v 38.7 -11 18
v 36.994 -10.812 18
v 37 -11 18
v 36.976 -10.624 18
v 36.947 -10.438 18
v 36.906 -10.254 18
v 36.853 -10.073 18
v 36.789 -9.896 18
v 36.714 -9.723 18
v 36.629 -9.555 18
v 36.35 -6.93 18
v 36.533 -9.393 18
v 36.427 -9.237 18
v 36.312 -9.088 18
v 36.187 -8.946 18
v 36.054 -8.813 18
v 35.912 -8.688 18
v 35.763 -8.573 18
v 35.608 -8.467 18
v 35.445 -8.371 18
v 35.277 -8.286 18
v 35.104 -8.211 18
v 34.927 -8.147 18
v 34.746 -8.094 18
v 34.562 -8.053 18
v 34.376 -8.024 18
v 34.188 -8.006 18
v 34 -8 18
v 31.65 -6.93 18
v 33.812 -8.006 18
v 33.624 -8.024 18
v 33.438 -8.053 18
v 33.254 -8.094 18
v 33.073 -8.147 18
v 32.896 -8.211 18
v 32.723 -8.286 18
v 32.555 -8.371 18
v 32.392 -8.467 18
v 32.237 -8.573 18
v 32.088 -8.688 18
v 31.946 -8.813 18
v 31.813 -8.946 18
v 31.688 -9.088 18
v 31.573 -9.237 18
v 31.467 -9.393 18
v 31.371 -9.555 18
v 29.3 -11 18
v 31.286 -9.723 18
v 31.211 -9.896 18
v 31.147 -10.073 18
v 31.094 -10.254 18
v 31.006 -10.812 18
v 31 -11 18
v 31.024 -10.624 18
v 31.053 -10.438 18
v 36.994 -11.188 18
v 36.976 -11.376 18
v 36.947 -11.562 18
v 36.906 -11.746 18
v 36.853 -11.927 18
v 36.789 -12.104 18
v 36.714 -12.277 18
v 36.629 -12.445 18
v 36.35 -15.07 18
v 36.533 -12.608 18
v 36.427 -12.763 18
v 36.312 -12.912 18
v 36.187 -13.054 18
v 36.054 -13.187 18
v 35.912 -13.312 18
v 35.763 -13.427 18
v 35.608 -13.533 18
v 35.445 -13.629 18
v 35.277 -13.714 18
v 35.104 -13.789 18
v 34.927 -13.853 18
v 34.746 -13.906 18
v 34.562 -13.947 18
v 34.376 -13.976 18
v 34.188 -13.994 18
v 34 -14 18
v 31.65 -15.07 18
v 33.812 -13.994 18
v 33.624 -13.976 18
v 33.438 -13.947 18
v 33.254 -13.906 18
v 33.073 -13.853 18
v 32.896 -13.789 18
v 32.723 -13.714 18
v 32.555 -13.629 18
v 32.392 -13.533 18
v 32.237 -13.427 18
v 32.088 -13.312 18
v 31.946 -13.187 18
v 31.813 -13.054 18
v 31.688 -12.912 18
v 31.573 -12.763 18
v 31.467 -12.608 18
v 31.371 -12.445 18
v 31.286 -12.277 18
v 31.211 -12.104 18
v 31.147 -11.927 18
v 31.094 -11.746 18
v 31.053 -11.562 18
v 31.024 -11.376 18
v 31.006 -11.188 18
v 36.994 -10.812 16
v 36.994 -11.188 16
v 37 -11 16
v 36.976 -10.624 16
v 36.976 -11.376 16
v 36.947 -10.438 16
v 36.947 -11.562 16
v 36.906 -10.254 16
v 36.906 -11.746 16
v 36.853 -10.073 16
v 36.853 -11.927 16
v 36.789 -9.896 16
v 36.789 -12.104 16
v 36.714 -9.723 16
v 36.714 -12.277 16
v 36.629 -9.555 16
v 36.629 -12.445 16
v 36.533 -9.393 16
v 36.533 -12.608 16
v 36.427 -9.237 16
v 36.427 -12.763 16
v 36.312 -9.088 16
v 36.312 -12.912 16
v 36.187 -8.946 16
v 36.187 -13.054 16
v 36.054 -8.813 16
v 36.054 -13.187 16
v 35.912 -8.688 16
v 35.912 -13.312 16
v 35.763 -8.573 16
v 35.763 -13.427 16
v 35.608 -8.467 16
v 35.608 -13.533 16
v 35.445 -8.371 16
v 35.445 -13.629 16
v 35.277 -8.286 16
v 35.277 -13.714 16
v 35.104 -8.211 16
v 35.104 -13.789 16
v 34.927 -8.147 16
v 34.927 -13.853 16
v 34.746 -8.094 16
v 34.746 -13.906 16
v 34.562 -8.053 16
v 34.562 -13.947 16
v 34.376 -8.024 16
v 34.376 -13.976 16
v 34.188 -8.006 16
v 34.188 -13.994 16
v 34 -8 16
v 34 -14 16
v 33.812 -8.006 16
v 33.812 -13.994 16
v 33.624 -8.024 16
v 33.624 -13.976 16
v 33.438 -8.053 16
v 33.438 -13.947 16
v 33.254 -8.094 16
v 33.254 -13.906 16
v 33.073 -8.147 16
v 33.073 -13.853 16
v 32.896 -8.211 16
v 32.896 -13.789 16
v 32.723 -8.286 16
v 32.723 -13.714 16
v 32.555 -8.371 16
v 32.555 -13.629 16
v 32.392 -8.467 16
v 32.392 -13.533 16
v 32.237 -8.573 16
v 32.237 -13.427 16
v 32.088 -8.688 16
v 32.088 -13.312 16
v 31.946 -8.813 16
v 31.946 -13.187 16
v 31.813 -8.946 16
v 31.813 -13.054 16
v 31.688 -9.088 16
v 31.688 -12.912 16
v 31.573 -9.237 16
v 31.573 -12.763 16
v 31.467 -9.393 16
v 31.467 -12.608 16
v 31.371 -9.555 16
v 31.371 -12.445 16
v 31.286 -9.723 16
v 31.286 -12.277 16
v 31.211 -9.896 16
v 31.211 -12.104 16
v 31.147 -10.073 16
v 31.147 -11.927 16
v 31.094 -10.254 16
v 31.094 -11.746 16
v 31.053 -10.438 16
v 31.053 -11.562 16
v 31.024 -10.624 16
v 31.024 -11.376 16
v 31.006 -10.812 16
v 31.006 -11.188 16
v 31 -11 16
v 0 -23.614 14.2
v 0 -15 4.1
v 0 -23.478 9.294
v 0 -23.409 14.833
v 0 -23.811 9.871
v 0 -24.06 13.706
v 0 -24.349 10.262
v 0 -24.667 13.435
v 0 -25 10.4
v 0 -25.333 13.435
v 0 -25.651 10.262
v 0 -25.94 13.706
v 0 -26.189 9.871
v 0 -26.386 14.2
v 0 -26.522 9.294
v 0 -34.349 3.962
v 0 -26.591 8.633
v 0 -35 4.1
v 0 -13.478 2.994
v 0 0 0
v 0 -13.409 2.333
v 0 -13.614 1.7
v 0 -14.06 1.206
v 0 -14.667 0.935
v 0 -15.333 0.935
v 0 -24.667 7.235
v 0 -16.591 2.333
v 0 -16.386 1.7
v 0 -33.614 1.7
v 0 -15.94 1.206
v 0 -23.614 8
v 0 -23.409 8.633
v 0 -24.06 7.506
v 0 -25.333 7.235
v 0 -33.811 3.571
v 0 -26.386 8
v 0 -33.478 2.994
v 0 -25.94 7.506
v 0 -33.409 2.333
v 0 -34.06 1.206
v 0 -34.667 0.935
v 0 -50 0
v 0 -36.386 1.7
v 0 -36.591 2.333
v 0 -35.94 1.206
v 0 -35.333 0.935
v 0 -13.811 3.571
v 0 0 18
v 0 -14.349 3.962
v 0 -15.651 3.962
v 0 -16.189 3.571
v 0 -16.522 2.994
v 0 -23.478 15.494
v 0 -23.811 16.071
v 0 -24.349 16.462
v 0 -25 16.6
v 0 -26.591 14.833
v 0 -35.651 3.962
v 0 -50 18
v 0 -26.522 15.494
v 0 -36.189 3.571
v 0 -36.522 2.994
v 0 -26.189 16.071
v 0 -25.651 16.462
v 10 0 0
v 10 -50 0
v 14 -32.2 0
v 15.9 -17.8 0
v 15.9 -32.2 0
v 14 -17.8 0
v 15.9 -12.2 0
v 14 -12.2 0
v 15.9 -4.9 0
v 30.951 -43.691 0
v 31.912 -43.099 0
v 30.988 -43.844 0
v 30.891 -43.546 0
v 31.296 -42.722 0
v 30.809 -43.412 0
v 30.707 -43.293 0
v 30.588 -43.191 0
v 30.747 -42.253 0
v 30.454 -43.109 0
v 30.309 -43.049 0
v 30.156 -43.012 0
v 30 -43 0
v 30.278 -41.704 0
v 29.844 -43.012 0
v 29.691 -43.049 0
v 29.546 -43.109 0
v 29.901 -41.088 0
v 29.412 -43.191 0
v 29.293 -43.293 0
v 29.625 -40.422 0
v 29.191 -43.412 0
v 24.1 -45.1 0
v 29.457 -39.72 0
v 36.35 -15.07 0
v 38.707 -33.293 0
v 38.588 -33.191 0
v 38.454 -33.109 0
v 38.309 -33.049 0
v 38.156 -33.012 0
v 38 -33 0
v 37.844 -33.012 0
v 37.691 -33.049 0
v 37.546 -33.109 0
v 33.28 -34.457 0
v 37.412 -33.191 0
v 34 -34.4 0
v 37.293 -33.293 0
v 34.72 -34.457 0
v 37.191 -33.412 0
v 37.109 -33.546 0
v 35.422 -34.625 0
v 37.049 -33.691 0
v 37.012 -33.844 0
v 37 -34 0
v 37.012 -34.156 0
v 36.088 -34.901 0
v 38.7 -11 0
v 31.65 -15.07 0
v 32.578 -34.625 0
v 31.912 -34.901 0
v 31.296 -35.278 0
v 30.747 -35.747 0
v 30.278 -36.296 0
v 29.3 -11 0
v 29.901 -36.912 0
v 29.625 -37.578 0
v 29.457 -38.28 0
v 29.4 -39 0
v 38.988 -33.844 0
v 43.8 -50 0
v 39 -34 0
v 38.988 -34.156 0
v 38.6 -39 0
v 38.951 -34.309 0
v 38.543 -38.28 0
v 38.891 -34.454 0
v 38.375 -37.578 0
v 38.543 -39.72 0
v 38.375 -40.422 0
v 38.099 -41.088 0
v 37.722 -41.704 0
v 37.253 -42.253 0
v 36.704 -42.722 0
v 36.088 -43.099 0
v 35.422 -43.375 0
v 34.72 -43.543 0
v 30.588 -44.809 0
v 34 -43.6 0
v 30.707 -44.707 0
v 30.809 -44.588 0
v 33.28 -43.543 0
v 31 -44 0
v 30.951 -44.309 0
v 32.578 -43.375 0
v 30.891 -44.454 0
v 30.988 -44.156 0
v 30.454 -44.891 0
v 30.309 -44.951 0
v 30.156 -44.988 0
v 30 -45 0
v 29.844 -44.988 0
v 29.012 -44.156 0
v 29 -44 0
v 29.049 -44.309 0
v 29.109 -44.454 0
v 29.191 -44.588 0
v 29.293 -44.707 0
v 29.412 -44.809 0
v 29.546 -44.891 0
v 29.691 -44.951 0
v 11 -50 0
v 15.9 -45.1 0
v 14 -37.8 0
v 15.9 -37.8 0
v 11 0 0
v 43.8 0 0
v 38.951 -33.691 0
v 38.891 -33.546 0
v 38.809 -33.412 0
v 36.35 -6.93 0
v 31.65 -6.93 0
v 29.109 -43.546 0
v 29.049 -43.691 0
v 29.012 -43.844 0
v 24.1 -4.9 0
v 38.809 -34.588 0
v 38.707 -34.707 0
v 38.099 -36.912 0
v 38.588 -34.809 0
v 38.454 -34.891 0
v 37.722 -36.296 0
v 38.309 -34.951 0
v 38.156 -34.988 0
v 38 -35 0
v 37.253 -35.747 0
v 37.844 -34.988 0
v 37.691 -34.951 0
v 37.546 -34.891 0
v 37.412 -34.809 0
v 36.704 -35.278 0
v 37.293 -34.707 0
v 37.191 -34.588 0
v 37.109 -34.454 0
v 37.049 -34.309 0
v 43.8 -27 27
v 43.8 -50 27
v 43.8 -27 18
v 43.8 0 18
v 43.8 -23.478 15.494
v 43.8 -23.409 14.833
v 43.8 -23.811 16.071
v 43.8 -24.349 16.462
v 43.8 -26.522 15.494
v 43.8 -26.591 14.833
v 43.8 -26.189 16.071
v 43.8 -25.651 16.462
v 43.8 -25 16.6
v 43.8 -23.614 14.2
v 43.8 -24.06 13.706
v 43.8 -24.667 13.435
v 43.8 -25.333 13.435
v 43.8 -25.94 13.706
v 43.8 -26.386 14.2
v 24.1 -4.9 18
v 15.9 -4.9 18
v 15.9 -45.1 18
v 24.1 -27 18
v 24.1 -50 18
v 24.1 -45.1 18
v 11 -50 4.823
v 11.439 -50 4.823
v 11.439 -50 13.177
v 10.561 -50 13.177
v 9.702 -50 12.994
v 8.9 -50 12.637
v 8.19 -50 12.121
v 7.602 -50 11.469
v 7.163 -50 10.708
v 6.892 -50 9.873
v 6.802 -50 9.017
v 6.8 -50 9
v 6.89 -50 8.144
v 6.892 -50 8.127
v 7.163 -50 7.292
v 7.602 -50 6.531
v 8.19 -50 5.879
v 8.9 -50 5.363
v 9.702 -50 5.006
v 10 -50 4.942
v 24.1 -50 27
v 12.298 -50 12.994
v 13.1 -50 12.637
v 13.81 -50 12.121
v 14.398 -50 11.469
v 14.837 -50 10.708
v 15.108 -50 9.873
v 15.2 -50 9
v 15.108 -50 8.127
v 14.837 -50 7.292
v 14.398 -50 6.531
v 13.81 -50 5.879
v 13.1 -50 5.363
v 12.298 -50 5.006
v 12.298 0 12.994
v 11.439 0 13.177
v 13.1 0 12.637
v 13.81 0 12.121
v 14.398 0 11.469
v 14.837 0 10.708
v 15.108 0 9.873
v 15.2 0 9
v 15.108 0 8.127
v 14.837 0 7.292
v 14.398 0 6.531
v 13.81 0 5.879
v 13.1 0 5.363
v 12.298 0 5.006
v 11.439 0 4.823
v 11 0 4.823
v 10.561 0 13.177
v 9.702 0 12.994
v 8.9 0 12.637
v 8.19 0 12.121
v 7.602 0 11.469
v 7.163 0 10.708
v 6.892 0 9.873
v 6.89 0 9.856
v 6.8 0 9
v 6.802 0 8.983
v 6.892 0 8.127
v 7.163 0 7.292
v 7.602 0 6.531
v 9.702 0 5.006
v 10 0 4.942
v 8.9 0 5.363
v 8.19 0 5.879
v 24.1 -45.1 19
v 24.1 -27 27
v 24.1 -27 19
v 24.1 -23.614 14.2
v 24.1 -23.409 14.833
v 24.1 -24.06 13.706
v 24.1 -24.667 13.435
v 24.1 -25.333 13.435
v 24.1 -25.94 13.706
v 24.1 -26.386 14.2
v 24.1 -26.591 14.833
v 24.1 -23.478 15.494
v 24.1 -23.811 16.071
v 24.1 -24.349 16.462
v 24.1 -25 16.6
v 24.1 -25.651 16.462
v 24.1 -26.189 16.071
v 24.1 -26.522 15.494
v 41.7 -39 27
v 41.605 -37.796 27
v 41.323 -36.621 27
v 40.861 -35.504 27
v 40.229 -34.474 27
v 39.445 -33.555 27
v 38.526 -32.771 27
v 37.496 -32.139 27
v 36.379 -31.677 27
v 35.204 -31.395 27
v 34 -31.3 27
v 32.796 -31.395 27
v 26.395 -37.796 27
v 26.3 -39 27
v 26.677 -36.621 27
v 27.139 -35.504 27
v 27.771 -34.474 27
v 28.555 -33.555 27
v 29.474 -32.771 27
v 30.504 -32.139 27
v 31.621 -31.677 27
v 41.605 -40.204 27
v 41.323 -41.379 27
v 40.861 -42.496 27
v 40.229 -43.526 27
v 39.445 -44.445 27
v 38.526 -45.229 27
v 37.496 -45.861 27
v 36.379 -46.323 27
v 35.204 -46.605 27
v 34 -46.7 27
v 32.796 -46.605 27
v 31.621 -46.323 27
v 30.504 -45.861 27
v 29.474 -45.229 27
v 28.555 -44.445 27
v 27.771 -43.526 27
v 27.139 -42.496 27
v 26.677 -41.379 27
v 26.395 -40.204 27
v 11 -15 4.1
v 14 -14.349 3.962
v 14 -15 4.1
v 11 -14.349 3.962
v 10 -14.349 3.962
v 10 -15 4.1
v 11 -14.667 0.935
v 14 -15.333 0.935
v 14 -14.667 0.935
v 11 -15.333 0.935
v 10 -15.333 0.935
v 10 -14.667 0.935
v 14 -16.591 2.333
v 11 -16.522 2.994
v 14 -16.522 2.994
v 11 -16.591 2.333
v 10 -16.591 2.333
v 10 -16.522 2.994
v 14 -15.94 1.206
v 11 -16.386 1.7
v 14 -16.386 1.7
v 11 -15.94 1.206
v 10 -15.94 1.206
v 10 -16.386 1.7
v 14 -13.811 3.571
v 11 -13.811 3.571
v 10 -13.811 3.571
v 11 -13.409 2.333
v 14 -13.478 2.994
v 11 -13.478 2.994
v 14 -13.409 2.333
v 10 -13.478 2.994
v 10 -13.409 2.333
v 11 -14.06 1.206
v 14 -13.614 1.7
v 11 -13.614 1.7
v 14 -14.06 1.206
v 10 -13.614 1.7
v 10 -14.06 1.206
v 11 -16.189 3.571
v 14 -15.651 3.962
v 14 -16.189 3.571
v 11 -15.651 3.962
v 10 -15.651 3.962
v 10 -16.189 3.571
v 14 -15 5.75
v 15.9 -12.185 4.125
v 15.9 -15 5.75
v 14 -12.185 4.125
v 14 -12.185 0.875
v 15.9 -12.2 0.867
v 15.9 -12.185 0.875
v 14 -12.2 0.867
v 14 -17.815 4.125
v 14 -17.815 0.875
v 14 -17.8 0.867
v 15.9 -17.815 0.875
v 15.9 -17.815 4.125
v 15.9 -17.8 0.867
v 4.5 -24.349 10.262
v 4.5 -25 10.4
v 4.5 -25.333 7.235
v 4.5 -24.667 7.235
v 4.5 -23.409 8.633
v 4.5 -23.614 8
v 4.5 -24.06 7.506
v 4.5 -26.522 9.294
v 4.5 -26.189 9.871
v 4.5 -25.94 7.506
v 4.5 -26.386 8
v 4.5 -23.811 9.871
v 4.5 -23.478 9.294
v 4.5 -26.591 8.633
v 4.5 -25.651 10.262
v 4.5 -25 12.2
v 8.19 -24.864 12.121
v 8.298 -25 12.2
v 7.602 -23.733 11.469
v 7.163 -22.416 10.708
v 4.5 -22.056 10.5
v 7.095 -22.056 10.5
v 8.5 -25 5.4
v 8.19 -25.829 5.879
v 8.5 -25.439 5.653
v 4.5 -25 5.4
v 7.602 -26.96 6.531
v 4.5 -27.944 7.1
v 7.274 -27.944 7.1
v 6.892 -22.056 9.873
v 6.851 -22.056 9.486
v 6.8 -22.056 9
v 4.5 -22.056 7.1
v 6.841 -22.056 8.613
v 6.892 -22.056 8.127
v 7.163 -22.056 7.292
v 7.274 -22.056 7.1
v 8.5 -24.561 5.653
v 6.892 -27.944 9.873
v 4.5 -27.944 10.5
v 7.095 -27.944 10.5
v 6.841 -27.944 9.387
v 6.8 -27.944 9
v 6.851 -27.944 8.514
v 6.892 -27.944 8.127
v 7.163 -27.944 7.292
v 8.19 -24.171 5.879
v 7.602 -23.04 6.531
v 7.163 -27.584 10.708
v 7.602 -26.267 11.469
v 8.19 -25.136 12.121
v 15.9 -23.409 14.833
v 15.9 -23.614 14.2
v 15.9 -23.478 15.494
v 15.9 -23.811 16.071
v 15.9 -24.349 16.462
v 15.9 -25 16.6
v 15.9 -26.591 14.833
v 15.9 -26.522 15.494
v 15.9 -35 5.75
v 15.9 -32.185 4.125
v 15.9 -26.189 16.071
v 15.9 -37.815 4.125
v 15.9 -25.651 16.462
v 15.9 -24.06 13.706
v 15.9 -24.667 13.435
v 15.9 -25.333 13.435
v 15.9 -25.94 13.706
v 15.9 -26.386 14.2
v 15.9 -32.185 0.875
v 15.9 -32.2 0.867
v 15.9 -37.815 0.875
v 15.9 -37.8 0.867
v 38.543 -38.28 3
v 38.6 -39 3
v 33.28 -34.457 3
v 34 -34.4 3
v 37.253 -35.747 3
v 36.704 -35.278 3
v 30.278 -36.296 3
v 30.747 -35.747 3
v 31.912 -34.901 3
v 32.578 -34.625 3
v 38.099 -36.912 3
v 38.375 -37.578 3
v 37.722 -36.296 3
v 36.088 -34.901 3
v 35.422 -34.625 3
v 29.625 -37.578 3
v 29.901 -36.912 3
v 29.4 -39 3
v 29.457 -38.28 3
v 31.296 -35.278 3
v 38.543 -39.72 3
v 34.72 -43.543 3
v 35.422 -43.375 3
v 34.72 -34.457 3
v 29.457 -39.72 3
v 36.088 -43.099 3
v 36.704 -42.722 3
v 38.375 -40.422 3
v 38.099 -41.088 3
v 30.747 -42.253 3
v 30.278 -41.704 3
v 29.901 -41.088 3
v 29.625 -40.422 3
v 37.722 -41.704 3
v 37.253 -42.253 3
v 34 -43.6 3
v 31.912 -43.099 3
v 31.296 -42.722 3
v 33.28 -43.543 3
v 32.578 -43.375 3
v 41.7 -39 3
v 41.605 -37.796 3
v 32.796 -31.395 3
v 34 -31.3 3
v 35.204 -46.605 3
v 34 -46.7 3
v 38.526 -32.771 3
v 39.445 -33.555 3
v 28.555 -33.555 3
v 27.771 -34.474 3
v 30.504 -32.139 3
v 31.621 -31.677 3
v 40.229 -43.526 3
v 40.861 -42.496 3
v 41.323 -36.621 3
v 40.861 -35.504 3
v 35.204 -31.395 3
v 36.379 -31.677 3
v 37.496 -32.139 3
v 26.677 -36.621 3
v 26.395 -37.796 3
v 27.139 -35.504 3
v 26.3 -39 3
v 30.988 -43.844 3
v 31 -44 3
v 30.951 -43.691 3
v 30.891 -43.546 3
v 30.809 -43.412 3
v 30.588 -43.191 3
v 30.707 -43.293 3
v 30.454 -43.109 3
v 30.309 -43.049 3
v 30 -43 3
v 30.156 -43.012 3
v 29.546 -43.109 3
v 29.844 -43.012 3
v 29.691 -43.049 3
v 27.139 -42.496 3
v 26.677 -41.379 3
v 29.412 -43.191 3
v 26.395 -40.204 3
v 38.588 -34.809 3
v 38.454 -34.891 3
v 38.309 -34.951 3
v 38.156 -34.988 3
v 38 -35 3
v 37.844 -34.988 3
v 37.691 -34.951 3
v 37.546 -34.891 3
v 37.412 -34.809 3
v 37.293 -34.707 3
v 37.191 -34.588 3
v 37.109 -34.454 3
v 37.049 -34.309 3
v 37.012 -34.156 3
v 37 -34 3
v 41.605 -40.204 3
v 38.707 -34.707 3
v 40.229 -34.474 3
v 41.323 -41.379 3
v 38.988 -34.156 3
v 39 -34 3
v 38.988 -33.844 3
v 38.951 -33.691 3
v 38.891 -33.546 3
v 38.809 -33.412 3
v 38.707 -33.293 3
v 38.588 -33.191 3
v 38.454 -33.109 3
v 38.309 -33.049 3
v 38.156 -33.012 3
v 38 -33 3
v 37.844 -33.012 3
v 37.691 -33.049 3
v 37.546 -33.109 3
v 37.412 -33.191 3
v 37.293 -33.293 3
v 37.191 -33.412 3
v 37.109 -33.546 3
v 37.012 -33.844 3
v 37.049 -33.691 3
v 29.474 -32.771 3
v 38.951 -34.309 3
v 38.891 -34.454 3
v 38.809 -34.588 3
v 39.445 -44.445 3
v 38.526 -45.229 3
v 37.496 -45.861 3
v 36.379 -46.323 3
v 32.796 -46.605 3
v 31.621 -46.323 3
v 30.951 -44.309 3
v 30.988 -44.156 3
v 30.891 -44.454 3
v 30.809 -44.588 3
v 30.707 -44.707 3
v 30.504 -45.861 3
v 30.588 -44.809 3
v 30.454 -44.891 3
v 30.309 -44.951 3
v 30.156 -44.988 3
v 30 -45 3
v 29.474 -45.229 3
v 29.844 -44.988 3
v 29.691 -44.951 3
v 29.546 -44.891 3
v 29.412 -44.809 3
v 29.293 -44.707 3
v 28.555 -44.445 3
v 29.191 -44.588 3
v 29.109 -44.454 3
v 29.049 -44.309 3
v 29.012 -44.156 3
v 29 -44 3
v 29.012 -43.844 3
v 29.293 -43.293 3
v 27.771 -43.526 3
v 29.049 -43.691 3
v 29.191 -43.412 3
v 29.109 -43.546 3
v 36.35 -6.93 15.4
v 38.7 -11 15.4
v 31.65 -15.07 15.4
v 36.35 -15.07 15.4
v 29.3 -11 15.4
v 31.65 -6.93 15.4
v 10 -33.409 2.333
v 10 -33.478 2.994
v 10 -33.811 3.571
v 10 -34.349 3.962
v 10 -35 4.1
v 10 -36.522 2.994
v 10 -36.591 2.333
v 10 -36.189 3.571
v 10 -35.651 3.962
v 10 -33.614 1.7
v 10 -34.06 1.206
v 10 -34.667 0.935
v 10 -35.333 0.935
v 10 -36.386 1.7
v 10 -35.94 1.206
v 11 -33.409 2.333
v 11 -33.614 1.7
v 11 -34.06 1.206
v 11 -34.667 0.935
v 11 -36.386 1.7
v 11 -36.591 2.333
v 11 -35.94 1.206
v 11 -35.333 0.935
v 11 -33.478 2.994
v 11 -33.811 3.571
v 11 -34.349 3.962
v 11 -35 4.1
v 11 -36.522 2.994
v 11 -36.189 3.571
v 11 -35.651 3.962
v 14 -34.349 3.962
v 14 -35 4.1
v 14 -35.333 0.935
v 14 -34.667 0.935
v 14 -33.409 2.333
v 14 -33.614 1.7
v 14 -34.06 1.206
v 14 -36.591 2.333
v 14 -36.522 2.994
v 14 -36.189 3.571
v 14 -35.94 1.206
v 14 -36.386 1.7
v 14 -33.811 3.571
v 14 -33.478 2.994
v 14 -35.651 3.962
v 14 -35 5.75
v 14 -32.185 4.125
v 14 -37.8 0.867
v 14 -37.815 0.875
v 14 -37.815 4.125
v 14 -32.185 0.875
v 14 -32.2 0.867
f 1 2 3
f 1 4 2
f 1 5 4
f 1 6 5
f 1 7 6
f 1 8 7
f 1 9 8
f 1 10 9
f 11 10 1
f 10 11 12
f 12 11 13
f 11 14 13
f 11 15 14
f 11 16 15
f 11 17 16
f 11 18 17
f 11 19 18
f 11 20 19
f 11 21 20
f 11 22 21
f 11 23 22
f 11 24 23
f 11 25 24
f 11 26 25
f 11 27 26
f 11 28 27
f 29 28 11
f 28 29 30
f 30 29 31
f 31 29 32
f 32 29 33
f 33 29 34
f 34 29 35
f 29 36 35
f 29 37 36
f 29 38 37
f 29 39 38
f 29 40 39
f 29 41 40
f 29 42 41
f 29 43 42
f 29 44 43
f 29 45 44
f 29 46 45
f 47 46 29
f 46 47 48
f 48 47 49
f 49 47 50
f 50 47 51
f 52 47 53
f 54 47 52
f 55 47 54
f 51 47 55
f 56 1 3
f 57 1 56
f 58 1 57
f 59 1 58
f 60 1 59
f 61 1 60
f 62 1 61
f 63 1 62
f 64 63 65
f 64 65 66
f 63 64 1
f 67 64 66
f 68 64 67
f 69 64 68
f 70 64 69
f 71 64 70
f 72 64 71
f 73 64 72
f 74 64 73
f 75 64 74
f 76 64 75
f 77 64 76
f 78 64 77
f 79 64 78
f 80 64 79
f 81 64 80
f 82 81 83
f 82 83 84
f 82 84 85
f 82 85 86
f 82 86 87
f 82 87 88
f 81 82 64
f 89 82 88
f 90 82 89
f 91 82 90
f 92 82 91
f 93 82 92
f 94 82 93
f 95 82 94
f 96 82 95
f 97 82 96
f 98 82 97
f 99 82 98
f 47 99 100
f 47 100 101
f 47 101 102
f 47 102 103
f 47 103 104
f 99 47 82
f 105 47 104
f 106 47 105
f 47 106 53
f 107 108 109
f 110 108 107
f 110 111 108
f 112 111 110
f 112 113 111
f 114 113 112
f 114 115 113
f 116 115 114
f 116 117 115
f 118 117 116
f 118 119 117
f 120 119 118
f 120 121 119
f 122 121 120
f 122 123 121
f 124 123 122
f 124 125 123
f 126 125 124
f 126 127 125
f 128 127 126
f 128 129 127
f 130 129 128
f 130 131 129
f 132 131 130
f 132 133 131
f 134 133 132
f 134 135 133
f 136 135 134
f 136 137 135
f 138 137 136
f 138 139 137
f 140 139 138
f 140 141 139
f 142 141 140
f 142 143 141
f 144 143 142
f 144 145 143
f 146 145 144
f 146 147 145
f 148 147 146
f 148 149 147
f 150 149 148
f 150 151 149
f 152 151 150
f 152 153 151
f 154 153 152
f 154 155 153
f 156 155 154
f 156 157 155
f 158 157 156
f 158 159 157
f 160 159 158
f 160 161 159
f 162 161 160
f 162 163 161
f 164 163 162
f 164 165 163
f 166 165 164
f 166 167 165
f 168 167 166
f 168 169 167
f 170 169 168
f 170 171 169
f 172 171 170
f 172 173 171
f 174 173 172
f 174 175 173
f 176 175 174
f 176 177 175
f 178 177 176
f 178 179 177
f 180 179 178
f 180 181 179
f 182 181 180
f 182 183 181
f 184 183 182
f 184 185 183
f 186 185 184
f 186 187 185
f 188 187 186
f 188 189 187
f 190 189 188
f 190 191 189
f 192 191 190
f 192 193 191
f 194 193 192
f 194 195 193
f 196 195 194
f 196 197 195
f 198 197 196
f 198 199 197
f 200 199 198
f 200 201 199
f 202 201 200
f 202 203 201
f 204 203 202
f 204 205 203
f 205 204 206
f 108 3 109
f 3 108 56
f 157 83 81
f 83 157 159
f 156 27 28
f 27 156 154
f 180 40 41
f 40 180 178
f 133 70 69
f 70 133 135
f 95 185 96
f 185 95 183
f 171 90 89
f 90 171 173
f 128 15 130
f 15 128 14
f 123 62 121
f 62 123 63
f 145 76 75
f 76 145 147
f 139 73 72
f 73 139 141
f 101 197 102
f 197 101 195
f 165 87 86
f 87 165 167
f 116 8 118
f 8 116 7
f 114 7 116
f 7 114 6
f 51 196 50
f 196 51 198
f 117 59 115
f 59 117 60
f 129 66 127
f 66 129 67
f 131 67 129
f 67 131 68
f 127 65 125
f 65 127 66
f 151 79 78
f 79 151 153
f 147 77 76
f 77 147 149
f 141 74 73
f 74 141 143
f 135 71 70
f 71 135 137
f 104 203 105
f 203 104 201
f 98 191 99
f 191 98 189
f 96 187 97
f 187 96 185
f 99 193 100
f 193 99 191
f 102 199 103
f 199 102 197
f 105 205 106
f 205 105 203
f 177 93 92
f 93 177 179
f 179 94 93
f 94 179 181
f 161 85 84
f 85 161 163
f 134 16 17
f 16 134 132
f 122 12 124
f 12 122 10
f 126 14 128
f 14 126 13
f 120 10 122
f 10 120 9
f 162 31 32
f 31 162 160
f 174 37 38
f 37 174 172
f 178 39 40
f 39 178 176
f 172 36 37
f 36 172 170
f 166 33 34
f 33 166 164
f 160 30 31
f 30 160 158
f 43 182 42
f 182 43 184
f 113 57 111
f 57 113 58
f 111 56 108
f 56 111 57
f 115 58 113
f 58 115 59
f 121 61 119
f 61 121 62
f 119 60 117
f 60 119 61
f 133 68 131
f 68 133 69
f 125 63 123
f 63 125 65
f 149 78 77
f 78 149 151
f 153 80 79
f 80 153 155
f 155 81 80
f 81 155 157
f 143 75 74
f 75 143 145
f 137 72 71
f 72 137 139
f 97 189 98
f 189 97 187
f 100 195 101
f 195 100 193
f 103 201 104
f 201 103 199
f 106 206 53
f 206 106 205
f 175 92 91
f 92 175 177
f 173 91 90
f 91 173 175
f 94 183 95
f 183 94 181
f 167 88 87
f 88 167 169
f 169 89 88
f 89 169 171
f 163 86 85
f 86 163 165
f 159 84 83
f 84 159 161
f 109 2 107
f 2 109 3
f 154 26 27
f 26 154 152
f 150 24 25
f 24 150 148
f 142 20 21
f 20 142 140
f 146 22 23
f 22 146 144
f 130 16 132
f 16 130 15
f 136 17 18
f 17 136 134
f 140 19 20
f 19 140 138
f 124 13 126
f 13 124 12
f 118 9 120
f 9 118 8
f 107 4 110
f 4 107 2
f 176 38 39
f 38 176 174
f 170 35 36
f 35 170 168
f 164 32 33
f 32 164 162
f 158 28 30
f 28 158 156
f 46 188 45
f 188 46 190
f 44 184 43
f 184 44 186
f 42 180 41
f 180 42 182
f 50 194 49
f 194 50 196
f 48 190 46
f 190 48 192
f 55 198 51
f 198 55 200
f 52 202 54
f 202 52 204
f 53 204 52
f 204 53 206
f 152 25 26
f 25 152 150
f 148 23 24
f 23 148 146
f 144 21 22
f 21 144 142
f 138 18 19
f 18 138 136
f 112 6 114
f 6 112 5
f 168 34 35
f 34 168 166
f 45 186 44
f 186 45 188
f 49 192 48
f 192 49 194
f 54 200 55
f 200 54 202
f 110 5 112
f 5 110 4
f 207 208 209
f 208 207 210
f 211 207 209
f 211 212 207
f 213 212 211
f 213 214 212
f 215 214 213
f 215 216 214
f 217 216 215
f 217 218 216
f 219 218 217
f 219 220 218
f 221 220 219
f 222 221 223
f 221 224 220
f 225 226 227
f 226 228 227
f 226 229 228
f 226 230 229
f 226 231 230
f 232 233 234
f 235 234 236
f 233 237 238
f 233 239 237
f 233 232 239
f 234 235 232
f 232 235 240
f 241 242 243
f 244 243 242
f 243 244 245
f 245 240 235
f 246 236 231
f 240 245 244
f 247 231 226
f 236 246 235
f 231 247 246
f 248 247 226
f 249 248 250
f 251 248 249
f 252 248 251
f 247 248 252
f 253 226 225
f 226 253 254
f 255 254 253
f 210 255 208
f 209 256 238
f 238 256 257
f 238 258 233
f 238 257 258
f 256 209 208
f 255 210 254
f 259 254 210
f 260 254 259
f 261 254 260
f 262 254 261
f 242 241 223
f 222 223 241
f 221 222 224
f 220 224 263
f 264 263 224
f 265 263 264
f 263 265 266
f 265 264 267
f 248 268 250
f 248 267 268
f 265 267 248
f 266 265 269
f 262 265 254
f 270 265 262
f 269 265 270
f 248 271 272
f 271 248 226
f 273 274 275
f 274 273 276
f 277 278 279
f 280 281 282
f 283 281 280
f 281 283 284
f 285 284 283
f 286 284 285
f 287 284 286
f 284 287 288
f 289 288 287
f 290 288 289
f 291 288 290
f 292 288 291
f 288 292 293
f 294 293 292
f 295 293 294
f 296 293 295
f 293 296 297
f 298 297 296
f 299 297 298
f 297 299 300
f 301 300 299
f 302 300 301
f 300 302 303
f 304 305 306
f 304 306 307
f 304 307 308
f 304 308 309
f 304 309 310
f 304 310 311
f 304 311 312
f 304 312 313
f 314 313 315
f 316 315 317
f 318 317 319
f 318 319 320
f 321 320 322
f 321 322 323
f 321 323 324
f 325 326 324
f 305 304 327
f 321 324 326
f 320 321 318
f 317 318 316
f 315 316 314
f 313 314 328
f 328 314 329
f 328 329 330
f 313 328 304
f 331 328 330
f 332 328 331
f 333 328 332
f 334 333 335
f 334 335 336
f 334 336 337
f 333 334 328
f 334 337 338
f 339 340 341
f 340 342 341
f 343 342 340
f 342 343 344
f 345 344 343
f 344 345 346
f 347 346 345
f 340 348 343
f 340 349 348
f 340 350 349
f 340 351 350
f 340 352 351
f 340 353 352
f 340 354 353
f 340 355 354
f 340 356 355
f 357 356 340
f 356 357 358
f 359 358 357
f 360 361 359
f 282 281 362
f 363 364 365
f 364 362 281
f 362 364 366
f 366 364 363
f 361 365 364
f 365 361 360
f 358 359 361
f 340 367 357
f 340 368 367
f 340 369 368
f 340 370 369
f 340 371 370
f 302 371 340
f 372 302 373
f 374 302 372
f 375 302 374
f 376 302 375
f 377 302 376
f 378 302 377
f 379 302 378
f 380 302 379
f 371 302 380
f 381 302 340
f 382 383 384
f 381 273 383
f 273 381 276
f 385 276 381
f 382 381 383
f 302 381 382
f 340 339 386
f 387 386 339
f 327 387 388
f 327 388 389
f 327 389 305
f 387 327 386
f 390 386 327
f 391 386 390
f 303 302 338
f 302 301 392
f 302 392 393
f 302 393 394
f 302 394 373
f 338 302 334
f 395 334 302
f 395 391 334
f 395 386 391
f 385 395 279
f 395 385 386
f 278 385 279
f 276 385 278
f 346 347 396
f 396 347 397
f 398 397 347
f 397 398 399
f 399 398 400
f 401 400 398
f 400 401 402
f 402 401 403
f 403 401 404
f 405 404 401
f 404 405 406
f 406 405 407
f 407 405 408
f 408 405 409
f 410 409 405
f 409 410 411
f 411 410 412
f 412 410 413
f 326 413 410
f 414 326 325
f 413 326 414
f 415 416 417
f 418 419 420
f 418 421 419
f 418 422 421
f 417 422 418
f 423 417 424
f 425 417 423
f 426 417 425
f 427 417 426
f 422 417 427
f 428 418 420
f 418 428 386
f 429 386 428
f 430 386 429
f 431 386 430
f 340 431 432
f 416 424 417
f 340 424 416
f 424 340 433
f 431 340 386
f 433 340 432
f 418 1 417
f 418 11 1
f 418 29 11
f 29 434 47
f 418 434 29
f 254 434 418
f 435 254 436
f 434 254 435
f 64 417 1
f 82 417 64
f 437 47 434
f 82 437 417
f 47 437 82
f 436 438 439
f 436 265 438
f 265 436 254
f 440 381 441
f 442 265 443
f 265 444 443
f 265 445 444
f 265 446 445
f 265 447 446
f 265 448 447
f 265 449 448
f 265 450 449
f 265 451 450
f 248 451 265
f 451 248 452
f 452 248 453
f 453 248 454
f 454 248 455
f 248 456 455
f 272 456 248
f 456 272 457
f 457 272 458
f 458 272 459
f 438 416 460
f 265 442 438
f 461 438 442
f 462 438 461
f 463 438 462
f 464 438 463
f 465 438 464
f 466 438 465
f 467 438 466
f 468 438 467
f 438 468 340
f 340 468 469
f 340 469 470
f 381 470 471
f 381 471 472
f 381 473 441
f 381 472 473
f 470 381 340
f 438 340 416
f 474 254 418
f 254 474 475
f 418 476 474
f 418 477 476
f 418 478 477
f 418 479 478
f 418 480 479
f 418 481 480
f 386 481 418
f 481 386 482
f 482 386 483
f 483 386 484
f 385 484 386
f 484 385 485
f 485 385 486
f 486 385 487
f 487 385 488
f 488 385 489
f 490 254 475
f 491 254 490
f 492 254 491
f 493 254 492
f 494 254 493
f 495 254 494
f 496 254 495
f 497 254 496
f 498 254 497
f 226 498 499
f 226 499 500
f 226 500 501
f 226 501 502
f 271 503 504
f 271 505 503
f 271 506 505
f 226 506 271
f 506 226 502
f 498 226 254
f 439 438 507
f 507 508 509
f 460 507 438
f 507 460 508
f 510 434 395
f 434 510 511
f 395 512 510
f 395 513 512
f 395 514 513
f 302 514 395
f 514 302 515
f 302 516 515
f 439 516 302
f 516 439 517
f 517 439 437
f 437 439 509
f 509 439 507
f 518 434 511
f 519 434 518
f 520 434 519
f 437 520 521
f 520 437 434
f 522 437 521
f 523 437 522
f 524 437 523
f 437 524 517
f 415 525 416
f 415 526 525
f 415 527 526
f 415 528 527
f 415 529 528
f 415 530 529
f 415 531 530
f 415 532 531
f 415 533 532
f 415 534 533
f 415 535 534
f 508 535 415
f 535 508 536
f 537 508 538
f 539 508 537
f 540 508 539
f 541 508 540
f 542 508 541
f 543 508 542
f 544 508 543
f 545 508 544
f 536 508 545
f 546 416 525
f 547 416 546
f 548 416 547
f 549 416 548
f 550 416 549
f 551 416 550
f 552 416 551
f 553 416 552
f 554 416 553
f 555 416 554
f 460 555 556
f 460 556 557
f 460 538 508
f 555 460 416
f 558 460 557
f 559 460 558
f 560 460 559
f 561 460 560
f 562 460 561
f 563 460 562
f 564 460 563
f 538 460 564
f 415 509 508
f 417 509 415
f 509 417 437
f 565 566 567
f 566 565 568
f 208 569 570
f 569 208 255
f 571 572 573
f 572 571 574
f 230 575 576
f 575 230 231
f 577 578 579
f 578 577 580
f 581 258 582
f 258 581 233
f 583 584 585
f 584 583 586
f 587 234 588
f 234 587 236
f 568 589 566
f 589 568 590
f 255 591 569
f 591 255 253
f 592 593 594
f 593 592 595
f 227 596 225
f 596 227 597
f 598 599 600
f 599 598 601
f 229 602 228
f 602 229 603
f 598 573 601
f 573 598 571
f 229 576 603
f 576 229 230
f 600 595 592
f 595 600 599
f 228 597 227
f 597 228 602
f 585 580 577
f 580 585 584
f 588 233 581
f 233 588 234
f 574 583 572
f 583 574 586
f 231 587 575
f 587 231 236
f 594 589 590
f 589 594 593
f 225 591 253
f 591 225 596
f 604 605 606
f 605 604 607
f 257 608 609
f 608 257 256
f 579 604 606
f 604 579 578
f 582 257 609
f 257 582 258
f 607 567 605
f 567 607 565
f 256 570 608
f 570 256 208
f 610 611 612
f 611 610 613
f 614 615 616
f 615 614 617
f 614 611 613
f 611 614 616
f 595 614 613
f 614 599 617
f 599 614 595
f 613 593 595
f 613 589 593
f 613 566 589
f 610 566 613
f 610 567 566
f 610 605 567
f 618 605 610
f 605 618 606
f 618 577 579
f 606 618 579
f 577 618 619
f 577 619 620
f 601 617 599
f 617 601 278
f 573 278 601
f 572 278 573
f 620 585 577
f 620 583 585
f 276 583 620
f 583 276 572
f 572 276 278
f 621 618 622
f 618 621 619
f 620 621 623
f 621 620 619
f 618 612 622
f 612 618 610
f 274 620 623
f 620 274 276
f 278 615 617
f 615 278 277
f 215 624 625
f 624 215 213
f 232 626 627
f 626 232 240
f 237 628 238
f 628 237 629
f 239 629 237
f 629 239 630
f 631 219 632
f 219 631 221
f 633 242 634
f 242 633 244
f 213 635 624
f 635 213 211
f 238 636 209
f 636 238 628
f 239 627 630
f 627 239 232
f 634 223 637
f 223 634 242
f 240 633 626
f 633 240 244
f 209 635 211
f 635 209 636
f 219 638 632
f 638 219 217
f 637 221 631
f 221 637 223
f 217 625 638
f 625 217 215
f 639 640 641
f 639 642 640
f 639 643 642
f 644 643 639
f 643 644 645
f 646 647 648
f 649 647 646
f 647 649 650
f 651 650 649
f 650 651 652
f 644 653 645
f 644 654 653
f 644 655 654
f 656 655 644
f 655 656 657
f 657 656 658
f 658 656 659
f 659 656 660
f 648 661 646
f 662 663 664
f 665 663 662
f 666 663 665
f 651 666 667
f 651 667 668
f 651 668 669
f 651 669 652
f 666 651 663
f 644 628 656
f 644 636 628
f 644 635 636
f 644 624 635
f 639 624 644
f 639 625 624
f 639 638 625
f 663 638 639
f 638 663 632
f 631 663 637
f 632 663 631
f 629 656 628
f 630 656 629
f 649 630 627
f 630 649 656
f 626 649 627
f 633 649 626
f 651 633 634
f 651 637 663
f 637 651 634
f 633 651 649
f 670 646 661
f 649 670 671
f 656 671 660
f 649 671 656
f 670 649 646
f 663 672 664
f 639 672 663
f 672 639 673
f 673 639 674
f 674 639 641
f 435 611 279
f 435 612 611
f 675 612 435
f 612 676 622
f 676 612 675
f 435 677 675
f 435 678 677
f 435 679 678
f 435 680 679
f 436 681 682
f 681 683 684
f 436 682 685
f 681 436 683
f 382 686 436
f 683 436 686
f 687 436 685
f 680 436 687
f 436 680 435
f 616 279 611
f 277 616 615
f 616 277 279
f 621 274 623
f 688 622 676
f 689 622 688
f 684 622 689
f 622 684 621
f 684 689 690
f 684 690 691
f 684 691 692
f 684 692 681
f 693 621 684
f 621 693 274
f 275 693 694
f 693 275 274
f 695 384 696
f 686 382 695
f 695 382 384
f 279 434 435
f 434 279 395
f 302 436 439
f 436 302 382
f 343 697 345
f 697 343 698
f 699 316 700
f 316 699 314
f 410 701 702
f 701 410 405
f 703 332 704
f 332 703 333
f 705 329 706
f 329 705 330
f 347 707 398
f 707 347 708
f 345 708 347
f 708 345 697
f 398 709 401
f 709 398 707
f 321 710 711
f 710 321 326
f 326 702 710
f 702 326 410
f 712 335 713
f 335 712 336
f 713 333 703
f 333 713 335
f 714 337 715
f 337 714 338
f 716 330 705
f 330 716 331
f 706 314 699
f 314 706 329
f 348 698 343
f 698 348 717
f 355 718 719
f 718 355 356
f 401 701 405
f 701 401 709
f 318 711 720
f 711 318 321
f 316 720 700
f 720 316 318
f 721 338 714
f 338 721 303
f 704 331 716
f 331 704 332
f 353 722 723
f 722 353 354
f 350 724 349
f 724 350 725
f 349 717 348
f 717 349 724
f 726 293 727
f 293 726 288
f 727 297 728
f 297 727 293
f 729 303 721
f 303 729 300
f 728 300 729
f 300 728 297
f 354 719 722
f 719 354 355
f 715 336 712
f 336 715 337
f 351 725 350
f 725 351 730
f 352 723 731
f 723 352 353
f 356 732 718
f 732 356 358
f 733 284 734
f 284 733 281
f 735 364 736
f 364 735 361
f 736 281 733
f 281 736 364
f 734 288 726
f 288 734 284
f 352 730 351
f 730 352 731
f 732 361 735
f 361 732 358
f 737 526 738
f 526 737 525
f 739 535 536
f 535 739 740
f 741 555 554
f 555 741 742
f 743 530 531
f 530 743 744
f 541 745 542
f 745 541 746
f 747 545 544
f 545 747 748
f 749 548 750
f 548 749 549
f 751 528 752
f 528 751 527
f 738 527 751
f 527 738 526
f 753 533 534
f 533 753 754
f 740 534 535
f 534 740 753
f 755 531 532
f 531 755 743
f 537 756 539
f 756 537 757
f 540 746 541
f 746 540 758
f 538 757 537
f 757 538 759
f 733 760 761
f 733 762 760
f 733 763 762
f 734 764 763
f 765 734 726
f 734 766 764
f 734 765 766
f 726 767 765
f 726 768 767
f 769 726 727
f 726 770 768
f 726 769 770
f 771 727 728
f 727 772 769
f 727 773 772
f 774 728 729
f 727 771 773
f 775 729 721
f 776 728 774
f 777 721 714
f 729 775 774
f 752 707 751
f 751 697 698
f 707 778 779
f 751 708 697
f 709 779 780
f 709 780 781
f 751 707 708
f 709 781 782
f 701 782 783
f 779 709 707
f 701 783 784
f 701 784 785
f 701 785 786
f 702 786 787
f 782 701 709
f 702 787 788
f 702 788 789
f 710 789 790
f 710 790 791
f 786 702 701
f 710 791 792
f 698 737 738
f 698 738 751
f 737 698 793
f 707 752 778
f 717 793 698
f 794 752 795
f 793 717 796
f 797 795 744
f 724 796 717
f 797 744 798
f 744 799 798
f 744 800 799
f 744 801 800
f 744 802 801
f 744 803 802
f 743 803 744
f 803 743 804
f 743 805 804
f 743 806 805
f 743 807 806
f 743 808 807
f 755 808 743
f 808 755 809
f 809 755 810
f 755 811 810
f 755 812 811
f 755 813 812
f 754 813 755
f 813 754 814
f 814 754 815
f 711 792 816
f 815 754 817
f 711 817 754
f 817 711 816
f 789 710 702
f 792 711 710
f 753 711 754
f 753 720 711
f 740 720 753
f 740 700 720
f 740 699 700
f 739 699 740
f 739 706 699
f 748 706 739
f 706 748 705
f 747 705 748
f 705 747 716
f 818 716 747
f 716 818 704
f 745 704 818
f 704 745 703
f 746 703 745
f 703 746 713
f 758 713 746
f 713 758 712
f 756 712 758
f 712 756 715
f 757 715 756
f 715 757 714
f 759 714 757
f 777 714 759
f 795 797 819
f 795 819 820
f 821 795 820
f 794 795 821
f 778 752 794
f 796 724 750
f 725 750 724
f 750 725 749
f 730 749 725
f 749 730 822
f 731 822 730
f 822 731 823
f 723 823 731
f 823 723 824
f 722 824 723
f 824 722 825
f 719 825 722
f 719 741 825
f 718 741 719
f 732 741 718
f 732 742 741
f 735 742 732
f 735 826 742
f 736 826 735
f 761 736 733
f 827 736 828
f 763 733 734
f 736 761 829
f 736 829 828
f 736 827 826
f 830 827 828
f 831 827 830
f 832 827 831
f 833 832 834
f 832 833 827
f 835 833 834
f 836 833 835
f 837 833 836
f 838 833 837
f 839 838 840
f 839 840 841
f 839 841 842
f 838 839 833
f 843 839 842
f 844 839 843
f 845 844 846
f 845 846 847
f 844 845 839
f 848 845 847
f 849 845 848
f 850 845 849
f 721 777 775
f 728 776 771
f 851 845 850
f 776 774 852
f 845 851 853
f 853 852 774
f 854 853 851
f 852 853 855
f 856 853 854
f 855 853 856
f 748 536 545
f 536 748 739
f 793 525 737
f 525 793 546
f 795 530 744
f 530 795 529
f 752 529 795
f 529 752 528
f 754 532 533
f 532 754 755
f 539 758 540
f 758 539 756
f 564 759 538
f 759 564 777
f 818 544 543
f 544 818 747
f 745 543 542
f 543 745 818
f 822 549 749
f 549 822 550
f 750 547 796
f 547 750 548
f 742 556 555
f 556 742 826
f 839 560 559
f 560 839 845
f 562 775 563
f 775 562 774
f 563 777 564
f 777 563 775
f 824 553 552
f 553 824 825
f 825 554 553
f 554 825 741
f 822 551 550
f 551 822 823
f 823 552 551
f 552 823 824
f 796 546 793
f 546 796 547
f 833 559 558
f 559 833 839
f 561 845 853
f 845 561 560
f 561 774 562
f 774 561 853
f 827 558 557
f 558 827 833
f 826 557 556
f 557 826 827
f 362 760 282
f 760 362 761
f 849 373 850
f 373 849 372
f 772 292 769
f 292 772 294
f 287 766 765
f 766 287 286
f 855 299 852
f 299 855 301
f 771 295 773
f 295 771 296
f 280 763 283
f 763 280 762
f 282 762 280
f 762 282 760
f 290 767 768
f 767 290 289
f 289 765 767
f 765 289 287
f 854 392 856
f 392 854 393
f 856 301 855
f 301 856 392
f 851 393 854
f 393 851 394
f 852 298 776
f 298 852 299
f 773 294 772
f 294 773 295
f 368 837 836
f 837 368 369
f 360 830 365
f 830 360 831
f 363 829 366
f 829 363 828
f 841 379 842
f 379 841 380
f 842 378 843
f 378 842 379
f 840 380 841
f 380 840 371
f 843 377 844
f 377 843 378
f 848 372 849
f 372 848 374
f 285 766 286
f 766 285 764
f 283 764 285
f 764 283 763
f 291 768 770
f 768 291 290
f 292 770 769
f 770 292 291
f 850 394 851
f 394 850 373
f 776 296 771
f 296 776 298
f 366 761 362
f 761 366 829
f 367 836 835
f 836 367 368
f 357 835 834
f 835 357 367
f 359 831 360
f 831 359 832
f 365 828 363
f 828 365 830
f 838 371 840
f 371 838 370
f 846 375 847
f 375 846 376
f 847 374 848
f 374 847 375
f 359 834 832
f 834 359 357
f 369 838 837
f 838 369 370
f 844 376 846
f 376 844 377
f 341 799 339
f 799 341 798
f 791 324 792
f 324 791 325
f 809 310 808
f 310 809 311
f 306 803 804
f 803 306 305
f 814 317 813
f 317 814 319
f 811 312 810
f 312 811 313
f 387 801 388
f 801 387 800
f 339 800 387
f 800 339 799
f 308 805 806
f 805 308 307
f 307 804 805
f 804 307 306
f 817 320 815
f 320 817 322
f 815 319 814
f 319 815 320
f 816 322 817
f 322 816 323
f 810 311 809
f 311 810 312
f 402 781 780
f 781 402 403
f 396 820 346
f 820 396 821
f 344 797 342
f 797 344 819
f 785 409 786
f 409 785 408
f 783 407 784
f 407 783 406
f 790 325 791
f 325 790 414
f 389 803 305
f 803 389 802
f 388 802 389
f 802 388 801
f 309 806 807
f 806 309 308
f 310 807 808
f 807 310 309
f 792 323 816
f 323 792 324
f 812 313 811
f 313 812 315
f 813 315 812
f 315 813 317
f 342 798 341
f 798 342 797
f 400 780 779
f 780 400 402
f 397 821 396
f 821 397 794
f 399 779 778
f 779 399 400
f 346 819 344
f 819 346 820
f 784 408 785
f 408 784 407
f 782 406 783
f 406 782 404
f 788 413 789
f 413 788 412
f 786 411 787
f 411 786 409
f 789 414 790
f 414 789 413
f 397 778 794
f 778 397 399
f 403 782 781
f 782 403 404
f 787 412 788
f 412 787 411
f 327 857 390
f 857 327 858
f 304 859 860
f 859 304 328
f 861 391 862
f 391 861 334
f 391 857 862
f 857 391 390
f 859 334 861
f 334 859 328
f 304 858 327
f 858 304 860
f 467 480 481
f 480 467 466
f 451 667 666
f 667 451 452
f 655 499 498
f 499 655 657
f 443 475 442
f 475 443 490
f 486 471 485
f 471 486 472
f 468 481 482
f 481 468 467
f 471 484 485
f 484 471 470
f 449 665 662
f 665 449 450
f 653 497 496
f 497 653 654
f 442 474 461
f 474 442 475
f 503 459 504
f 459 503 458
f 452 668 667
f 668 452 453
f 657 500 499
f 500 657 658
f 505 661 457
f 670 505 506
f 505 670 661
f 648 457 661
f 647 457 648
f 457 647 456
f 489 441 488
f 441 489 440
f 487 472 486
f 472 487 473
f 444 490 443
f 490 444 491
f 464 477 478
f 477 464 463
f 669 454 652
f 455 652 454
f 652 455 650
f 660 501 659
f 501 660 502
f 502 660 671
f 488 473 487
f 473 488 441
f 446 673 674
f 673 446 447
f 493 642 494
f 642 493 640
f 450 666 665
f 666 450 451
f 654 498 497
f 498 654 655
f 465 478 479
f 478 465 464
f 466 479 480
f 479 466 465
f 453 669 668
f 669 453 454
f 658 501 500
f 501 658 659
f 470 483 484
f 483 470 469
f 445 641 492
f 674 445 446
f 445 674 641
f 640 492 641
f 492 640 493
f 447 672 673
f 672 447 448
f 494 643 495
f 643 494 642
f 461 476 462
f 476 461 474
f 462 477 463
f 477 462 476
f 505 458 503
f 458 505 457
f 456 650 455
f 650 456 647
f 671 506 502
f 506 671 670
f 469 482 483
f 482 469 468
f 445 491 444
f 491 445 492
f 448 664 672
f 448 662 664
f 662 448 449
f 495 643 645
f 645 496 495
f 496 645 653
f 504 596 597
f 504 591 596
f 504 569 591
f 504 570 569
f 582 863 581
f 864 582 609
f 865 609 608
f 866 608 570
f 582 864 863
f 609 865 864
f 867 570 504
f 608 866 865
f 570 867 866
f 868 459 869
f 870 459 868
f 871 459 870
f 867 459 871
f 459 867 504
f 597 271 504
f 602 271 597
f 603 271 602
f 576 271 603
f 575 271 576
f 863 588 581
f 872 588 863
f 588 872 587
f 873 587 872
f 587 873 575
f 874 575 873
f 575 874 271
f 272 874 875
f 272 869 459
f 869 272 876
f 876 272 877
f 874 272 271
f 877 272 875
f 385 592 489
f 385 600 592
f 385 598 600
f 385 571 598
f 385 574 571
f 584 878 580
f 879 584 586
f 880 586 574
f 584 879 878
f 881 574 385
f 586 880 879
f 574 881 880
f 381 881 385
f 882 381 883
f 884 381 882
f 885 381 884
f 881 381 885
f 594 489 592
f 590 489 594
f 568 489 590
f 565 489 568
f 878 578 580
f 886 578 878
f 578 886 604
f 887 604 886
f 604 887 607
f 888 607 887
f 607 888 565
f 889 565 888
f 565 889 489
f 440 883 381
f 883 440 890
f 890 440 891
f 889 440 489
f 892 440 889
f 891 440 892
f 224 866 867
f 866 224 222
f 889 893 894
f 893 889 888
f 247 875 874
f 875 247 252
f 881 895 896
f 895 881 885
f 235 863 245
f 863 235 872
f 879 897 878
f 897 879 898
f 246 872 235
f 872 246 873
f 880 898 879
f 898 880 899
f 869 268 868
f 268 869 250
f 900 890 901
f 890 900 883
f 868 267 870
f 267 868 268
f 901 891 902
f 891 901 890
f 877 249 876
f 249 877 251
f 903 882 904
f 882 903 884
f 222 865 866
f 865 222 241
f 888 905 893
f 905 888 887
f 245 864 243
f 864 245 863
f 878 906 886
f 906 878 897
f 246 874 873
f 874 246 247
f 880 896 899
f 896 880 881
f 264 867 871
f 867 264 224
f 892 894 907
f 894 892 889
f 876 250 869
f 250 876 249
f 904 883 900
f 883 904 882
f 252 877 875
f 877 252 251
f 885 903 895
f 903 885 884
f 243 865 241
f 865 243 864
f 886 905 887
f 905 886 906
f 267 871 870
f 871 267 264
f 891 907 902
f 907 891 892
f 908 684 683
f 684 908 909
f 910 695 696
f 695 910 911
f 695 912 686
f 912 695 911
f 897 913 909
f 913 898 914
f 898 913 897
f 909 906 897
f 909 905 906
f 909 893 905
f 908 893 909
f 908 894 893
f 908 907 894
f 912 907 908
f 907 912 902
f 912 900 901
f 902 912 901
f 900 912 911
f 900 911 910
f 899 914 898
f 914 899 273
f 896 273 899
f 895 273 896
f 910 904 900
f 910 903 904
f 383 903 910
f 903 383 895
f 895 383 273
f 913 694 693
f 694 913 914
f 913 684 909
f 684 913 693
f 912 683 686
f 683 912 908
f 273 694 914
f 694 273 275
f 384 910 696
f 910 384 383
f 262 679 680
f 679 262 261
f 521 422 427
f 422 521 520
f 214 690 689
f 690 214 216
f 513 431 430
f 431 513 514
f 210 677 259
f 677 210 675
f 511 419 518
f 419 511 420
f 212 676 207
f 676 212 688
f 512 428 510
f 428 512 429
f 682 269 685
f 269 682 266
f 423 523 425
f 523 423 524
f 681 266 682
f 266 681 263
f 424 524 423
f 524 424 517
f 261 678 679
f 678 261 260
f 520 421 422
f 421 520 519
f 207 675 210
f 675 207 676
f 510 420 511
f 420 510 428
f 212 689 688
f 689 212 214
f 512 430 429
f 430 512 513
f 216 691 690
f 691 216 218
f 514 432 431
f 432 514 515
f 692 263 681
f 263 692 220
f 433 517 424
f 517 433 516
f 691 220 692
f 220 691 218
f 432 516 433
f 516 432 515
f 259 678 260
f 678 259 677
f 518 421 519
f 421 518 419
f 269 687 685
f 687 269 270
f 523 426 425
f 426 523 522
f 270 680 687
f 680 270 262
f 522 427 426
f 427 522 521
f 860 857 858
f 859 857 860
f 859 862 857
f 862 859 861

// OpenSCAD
// file: carriage-part01.scad
/**
 * Критические размеры
 */
// Допуск на радиус подшипника (расстояние между стенками подшипника и детали)
delta1=0.2;
// Наружный диаметр линейного подшипника LM8UU
d1=15;
// Допуск на радиус направляющей (расстояние между стенками направляющей и детали)
delta2=0.2;
// Наружный диаметр направляющей
d2=8;
// расстояние между осью подшипника и осью гайки должно быть 28 мм

module carriage_part01() {
	module block() {
		M3 = 3.2/2;
		difference() {
		union() {
			translate([-2,0,0]) cube([43.8,50,18]);
			translate([-2,10,0])	cube([2,30,18]);
			// шапка над подшипником
			translate ([22.1,0,-9]) cube([19.7,23,9]);
		}

//	translate([-10,-10,-40])cube([100,100,50]);
//	translate([-10,-10,13])cube([100,100,50]);
//	translate([-78,-10,-20])cube([100,100,50]);

// вырез под оргстекло
//	translate([13.9,5,-1])cube([8.2,40,23]); - не входит
	translate([13.9,4.9,-1])cube([8.2,40.2,23]);

// линейный подшипник 24 * 15 * 8
	translate([32,11,-1]) cylinder(20,r=9.2/2,$fn=40);

//translate([32,11,-4]) cylinder(26,r=15.4/2,$fn=40); // для инверсии входа подшипника
//	translate([32,11,-11]) cylinder(26,r=15.4/2,$fn=40); 
	translate([32,11,-11]) cylinder(26,r=d1/2+delta1,$fn=40); // уменьшаем отверстие подшипника

	// Отверстия для извлечения подшипников
	translate([28,6,5]) cylinder(20,r=1,$fn=40);
	translate([36,16,5]) cylinder(20,r=1,$fn=40);

	// гайка  M5
//#	translate([32,39,-1])cylinder(6.4,r=4.7,$fn=40);
//#	translate([32,39,10])cylinder(9,r=4.7,$fn=40);
//#translate([35,32.4,-1])cube([6,13.2,20]);
	translate ([32,39,-1]) cylinder(20,r=9.4/2,$fn=6);


	// направляющая - слабо держит
//	translate([9,-1,9])rotate([-90,0,0])cylinder(52,r=8.4/2,$fn=30);
	// направляющая - меньше диаметр отверстия
	translate([9,-1,9])rotate([-90,0,0])cylinder(52,r=d2/2+delta2,$fn=30);
	// вырезы у направляющей
	translate([8,-1,8])cube([1,52,11]);

	// отверстие 1
	translate([-5,15,15.5])rotate([0,90,0])cylinder(20,r=M3,$fn=15);
	translate([12,15,15.5])rotate([0,90,0])cylinder(5,r=6.5/2,$fn=6);
	translate([12,12.2,17])cube([3,5.6,2]);

	// отверстие 2
	translate([0,35,0]) {
		translate([-5,0,15.5])rotate([0,90,0])cylinder(20,r=M3,$fn=15);
        translate([12,0,15.5])rotate([0,90,0])cylinder(5,r=6.5/2,$fn=6);
        translate([12,-15+12.2,17])cube([3,5.6,2]);
	}
	// отверстие 3 в прижиме
	translate([-9.5,10,-6.6]) {
		translate([-5,15,15.8])rotate([0,90,0])cylinder(20,r=M3,$fn=15);
	translate([12,15,15.8])rotate([0,90,0])cylinder(4,r=6.8/2,$fn=6);
	}
	// сквозное отверстие в детали
		translate([-14.5,25,3])rotate([0,90,0])cylinder(60,r=M3,$fn=15);
}
}

	// шапка над гайкой, отверстие в ней
	difference() {
		translate ([25,0,16]) cube([18,20,2]);
		translate ([34,11,10]) cylinder(10,r=6/2,$fn=100);
	}
	translate ([25,0,15.4]) cube([18,20,0.6]);

// мост над трубкой - не нужен при верной ориентации прохода втулки
//	translate ([24,30.5,13.5]) cube([16,16,0.5]);
    translate([2,50,18])rotate([180,0,0])block();
}

carriage_part01();
// main file
use <carriage-part01.scad>
module carriage_part02() {
    mirror([0,1,0]) carriage_part01();
}

carriage_part02();
